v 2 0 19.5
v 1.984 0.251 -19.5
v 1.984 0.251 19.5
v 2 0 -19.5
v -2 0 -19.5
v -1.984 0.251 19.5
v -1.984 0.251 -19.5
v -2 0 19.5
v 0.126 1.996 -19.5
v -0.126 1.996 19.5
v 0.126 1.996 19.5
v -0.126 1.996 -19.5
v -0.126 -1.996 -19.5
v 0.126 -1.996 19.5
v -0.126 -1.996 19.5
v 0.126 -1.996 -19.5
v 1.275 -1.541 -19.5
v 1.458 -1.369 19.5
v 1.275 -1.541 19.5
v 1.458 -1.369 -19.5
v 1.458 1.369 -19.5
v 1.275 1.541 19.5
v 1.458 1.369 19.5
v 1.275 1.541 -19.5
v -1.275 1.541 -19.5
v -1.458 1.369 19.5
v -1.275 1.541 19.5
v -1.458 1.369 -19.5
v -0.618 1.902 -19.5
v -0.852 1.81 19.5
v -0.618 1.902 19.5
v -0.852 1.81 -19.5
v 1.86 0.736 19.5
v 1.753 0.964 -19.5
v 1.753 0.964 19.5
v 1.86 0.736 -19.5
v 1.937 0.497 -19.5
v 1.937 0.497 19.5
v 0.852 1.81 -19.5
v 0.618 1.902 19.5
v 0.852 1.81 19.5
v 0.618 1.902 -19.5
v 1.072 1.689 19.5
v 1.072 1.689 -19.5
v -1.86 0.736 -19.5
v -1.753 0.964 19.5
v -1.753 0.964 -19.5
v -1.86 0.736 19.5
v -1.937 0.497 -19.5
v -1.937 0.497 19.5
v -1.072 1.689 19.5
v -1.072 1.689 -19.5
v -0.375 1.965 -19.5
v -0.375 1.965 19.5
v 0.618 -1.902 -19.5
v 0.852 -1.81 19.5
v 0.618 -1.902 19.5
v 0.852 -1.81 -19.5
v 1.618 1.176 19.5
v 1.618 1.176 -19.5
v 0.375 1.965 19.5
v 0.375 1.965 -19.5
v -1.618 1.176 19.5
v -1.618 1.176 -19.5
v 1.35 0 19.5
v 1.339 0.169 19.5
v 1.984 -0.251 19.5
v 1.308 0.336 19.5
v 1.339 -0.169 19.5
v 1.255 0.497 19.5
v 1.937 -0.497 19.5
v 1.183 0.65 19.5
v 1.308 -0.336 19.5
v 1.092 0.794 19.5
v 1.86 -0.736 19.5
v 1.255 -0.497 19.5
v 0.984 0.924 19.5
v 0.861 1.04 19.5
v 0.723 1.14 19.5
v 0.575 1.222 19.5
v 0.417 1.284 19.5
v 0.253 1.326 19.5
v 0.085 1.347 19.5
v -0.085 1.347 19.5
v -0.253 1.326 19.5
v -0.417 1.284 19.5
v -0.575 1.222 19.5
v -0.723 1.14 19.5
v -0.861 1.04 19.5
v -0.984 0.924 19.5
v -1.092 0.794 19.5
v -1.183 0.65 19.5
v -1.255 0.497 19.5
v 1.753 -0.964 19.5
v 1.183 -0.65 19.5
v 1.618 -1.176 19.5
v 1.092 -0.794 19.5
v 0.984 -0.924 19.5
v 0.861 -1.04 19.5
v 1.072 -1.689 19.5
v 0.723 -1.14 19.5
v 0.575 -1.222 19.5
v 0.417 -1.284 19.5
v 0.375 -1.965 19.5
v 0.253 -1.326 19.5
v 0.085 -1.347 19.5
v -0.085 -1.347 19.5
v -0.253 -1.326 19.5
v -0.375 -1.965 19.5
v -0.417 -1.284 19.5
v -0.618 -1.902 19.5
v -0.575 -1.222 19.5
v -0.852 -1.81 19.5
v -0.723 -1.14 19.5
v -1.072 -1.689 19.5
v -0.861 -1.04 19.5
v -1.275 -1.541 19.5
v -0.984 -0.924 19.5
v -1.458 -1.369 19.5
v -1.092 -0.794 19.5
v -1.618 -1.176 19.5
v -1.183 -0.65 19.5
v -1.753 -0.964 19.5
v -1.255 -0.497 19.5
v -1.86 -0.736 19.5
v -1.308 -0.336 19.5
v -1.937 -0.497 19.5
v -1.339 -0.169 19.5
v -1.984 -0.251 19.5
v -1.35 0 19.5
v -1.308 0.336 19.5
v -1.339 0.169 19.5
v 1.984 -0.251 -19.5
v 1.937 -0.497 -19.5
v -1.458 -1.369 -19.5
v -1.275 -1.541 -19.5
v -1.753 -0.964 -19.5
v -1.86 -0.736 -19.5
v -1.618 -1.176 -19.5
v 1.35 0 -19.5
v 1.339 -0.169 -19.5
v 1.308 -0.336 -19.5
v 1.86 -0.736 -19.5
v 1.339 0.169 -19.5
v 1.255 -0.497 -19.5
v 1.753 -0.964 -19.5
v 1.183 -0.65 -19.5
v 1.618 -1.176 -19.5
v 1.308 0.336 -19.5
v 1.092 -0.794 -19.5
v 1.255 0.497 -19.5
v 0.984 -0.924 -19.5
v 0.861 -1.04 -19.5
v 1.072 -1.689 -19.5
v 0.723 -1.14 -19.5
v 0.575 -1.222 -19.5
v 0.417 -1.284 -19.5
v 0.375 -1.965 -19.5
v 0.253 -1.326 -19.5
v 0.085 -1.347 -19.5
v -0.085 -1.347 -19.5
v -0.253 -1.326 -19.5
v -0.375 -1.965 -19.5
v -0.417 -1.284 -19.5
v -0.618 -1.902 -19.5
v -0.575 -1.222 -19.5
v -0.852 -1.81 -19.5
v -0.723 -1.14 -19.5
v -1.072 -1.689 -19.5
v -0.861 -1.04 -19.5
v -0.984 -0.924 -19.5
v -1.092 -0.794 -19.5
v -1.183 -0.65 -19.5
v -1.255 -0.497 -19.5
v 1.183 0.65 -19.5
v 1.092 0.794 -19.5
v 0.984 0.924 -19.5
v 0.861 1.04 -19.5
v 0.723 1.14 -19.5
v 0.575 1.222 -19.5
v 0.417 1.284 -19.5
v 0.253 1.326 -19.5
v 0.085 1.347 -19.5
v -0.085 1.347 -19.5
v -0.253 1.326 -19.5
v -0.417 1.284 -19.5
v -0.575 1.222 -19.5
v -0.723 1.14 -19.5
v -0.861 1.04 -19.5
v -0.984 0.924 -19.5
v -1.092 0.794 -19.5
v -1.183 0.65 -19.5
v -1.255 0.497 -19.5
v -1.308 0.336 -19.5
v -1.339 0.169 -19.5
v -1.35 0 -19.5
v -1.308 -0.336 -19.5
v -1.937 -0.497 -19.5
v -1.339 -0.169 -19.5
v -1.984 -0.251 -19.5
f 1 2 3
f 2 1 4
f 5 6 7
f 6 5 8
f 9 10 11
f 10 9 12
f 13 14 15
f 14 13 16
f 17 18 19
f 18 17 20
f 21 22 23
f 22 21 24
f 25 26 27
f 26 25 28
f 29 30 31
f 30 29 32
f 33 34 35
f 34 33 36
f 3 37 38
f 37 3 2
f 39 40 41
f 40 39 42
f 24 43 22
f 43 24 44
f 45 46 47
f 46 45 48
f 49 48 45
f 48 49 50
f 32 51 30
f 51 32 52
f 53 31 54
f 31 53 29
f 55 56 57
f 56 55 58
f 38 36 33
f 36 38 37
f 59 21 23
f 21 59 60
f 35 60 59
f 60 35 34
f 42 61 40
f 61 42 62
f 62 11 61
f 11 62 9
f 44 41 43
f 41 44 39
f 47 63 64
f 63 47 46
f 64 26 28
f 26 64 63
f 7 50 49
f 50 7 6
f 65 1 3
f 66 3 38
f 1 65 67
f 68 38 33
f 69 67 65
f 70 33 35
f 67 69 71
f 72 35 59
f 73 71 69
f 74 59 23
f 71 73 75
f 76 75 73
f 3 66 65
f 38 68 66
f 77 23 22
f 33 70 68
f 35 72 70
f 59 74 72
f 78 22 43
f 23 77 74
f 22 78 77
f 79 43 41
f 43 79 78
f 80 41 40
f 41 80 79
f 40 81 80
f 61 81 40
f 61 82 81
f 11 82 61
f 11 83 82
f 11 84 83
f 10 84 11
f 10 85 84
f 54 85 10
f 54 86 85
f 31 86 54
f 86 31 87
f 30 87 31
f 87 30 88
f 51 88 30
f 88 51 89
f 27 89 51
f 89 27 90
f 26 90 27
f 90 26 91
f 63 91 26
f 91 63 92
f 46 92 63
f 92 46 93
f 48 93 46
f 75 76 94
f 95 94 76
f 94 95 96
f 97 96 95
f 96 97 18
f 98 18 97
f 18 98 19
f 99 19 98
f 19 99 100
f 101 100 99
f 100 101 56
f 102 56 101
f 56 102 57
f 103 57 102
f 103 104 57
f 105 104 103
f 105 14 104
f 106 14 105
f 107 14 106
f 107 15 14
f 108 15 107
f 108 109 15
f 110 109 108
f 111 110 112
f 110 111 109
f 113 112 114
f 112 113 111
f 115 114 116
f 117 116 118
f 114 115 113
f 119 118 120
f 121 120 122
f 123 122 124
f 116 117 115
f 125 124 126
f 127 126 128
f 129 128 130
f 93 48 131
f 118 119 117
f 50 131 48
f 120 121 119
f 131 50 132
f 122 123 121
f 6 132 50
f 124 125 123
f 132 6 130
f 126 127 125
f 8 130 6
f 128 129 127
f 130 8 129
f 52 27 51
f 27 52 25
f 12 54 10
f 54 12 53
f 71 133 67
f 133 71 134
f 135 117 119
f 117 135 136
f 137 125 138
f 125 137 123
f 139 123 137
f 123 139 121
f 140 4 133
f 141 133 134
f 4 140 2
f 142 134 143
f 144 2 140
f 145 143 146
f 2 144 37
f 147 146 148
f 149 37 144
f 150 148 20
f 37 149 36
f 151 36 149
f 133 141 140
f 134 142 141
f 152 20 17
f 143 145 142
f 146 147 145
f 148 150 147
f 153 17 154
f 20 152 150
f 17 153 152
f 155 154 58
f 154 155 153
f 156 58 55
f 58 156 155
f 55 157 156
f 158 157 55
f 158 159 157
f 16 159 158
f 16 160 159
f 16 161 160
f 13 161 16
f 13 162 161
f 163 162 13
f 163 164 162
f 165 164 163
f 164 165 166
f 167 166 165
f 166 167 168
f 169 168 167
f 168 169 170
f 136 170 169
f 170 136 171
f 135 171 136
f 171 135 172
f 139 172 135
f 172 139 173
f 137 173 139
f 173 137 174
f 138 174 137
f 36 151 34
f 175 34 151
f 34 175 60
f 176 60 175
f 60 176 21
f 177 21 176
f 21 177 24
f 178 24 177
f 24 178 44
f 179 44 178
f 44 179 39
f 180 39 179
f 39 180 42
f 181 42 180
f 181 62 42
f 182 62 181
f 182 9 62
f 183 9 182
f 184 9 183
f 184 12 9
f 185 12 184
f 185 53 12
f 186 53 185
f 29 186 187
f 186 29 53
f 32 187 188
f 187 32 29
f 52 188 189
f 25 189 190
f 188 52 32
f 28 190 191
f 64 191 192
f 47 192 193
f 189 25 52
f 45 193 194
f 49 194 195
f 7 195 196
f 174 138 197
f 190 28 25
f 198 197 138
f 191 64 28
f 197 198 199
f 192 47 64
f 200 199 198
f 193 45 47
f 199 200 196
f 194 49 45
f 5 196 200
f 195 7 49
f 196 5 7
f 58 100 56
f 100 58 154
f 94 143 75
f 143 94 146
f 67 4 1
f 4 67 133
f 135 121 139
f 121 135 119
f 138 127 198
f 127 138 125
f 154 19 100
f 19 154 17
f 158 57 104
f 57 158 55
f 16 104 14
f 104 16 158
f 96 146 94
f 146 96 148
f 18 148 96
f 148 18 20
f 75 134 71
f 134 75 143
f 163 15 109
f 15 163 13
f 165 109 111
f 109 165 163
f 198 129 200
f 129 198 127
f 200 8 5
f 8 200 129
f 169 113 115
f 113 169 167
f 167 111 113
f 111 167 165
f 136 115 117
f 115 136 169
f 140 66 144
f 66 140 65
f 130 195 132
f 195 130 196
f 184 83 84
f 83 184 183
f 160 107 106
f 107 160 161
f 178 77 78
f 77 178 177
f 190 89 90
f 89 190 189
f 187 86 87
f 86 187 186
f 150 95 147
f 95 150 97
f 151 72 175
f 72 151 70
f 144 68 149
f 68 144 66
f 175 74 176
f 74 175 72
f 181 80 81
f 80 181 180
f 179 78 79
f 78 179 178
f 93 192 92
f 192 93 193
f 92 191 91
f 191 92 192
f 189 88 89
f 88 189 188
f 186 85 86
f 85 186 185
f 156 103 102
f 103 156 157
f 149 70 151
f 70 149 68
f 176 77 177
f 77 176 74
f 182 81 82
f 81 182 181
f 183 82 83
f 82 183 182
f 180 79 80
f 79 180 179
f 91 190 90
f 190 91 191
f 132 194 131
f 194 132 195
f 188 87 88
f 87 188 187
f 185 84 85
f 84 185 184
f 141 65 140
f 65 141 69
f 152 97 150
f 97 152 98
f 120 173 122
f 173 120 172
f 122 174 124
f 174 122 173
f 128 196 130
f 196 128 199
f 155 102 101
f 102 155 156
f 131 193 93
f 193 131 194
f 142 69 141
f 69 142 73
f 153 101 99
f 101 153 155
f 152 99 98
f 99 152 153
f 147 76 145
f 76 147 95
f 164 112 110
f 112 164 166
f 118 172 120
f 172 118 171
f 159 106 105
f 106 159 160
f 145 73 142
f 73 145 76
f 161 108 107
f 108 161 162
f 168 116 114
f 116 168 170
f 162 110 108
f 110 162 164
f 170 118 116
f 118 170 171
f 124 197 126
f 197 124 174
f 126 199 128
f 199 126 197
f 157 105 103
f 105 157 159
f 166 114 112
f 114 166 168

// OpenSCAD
$fn = 50;


difference() {
	union() {
		translate(v = [0, 0, -19.5000000000]) {
			cylinder(h = 39, r = 2.0000000000);
		}
	}
	union() {
		translate(v = [0, 0, -100.0000000000]) {
			cylinder(h = 200, r = 1.3500000000);
		}
	}
}
